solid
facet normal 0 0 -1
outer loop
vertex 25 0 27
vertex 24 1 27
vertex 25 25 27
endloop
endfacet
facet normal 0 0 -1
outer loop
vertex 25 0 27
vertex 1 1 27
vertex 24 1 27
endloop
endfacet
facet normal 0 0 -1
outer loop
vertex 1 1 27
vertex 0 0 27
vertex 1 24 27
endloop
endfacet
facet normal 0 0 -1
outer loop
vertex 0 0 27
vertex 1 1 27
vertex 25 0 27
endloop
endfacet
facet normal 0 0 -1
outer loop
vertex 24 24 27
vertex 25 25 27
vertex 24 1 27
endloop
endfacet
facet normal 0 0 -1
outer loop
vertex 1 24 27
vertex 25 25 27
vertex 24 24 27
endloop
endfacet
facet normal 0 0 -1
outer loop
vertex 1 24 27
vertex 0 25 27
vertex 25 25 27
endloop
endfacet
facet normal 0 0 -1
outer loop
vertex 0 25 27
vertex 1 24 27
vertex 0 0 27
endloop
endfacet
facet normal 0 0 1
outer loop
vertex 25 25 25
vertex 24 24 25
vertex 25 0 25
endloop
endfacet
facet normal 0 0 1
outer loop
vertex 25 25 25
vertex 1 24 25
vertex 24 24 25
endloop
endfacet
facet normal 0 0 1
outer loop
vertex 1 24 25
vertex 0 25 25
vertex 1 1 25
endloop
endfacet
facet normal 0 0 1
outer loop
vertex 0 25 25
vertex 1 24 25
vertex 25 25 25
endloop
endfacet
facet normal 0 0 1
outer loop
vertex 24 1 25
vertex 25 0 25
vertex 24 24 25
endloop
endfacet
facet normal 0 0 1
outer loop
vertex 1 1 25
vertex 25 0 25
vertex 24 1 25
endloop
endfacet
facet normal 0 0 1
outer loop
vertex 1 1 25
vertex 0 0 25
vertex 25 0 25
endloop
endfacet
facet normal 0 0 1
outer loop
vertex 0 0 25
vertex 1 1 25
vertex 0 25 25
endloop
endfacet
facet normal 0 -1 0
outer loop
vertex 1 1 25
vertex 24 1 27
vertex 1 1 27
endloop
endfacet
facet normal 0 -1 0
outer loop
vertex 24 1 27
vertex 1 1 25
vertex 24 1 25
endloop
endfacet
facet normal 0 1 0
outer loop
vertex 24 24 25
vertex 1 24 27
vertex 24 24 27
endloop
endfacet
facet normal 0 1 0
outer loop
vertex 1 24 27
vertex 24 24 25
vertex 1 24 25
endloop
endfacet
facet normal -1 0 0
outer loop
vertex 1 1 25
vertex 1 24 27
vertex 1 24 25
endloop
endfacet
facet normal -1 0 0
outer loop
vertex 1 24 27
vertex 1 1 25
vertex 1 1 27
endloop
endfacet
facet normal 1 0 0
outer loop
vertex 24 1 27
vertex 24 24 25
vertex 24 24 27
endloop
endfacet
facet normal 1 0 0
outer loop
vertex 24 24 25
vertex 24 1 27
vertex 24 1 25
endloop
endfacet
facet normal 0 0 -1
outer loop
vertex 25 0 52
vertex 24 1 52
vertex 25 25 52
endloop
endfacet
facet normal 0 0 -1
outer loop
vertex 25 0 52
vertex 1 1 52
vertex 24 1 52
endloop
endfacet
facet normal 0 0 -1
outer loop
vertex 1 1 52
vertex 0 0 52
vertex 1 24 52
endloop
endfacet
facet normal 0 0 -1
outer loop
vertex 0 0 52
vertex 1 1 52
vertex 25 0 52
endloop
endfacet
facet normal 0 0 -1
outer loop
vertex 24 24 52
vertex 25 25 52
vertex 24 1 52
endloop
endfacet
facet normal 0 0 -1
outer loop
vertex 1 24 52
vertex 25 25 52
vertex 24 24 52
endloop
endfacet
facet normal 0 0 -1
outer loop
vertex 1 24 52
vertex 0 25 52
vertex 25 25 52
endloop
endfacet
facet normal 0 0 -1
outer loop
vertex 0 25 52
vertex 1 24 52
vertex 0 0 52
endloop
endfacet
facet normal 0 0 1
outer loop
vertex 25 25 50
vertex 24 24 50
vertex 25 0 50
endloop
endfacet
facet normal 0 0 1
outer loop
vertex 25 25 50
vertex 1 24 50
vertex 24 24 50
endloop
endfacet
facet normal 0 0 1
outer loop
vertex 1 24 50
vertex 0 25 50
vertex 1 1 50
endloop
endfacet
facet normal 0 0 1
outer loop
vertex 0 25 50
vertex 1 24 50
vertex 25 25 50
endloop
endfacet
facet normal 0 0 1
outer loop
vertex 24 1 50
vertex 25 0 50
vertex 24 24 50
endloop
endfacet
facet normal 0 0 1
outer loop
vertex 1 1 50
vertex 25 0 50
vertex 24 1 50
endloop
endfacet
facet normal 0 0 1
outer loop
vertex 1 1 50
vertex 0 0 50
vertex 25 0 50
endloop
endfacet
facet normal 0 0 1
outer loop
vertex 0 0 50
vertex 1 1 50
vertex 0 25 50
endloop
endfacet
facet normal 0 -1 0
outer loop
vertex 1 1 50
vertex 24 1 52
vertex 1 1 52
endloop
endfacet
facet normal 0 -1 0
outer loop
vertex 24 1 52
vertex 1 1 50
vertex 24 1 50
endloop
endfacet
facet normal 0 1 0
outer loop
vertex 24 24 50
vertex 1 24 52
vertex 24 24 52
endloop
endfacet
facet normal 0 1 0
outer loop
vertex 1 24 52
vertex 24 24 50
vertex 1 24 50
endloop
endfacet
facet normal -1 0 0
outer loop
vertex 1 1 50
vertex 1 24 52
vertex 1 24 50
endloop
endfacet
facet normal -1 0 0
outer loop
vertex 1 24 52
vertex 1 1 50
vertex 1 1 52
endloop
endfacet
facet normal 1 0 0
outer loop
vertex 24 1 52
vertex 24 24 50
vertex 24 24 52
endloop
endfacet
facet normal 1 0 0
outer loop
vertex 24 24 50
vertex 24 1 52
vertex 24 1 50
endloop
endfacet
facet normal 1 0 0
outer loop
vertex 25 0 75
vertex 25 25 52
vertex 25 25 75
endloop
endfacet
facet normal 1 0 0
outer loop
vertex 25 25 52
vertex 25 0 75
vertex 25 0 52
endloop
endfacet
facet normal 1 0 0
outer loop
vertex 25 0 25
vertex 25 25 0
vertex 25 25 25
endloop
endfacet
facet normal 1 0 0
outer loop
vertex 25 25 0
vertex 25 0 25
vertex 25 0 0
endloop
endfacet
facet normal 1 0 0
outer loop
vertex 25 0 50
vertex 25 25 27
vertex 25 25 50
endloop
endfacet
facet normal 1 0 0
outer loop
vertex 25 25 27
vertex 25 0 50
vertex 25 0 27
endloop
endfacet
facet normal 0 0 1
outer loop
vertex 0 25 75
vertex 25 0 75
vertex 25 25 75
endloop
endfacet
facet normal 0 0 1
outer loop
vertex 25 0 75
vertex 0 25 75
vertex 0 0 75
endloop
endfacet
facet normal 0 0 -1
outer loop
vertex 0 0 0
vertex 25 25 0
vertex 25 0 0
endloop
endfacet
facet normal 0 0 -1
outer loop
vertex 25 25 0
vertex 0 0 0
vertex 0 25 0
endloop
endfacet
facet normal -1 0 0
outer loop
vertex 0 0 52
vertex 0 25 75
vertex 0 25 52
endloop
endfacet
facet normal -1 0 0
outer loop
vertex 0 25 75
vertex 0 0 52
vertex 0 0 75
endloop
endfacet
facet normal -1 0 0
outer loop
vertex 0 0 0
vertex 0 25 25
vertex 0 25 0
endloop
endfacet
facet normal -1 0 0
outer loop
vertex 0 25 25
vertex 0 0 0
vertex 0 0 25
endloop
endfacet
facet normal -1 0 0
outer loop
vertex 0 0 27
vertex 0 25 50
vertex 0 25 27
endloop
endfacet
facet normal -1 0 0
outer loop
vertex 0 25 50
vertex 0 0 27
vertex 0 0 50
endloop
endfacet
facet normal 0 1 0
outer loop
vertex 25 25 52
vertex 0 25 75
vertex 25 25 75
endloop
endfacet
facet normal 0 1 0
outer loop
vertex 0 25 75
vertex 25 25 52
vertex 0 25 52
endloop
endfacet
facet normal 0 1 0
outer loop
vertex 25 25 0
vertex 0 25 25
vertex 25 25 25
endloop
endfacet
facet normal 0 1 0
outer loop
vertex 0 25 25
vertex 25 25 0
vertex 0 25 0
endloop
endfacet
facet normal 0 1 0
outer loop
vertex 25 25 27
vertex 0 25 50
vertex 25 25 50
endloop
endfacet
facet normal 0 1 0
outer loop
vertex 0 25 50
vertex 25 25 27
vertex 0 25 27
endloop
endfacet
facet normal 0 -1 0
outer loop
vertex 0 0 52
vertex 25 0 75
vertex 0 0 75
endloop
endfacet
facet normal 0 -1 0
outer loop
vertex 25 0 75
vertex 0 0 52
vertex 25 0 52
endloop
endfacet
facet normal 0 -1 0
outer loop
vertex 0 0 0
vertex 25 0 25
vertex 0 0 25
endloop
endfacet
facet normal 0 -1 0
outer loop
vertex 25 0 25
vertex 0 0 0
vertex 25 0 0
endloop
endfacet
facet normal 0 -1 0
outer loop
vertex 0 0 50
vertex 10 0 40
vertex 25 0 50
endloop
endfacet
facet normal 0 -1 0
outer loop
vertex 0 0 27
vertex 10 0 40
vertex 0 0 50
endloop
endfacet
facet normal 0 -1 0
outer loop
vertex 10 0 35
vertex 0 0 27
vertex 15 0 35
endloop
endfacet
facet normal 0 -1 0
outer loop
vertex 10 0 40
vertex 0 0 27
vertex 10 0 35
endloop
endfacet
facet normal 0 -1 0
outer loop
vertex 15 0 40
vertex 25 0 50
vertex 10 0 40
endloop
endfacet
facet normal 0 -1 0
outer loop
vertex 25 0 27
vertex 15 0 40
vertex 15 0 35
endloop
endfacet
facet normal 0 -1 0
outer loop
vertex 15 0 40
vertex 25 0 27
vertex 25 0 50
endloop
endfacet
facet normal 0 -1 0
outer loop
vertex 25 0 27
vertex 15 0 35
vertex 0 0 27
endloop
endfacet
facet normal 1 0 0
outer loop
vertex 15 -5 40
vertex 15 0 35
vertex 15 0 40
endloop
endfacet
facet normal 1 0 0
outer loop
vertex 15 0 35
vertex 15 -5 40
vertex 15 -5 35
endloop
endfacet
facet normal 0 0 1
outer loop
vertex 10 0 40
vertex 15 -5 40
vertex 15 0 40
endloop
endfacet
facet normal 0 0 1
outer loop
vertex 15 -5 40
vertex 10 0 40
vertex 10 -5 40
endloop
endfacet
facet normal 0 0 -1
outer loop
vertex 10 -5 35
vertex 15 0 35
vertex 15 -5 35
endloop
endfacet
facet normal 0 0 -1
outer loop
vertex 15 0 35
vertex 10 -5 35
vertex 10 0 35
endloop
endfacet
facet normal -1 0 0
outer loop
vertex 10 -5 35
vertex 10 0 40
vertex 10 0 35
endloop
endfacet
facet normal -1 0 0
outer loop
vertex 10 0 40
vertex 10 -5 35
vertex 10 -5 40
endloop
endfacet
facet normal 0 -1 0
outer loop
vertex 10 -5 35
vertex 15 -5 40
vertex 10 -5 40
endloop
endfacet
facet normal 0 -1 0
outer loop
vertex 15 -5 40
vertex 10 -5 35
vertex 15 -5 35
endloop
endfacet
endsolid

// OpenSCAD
union() {
	difference() {
		cube(size = [25, 25, 75]);
		union() {
			union() {
				translate(v = [0, -1.0, 25]) {
					cube(size = [25, 2, 2]);
				}
				translate(v = [0, 24.0, 25]) {
					cube(size = [25, 2, 2]);
				}
				translate(v = [-1.0, 0, 25]) {
					cube(size = [2, 25, 2]);
				}
				translate(v = [24.0, 0, 25]) {
					cube(size = [2, 25, 2]);
				}
			}
			union() {
				translate(v = [0, -1.0, 50]) {
					cube(size = [25, 2, 2]);
				}
				translate(v = [0, 24.0, 50]) {
					cube(size = [25, 2, 2]);
				}
				translate(v = [-1.0, 0, 50]) {
					cube(size = [2, 25, 2]);
				}
				translate(v = [24.0, 0, 50]) {
					cube(size = [2, 25, 2]);
				}
			}
		}
	}
	translate(v = [10, -5, 35]) {
		cube(size = 5);
	}
}
